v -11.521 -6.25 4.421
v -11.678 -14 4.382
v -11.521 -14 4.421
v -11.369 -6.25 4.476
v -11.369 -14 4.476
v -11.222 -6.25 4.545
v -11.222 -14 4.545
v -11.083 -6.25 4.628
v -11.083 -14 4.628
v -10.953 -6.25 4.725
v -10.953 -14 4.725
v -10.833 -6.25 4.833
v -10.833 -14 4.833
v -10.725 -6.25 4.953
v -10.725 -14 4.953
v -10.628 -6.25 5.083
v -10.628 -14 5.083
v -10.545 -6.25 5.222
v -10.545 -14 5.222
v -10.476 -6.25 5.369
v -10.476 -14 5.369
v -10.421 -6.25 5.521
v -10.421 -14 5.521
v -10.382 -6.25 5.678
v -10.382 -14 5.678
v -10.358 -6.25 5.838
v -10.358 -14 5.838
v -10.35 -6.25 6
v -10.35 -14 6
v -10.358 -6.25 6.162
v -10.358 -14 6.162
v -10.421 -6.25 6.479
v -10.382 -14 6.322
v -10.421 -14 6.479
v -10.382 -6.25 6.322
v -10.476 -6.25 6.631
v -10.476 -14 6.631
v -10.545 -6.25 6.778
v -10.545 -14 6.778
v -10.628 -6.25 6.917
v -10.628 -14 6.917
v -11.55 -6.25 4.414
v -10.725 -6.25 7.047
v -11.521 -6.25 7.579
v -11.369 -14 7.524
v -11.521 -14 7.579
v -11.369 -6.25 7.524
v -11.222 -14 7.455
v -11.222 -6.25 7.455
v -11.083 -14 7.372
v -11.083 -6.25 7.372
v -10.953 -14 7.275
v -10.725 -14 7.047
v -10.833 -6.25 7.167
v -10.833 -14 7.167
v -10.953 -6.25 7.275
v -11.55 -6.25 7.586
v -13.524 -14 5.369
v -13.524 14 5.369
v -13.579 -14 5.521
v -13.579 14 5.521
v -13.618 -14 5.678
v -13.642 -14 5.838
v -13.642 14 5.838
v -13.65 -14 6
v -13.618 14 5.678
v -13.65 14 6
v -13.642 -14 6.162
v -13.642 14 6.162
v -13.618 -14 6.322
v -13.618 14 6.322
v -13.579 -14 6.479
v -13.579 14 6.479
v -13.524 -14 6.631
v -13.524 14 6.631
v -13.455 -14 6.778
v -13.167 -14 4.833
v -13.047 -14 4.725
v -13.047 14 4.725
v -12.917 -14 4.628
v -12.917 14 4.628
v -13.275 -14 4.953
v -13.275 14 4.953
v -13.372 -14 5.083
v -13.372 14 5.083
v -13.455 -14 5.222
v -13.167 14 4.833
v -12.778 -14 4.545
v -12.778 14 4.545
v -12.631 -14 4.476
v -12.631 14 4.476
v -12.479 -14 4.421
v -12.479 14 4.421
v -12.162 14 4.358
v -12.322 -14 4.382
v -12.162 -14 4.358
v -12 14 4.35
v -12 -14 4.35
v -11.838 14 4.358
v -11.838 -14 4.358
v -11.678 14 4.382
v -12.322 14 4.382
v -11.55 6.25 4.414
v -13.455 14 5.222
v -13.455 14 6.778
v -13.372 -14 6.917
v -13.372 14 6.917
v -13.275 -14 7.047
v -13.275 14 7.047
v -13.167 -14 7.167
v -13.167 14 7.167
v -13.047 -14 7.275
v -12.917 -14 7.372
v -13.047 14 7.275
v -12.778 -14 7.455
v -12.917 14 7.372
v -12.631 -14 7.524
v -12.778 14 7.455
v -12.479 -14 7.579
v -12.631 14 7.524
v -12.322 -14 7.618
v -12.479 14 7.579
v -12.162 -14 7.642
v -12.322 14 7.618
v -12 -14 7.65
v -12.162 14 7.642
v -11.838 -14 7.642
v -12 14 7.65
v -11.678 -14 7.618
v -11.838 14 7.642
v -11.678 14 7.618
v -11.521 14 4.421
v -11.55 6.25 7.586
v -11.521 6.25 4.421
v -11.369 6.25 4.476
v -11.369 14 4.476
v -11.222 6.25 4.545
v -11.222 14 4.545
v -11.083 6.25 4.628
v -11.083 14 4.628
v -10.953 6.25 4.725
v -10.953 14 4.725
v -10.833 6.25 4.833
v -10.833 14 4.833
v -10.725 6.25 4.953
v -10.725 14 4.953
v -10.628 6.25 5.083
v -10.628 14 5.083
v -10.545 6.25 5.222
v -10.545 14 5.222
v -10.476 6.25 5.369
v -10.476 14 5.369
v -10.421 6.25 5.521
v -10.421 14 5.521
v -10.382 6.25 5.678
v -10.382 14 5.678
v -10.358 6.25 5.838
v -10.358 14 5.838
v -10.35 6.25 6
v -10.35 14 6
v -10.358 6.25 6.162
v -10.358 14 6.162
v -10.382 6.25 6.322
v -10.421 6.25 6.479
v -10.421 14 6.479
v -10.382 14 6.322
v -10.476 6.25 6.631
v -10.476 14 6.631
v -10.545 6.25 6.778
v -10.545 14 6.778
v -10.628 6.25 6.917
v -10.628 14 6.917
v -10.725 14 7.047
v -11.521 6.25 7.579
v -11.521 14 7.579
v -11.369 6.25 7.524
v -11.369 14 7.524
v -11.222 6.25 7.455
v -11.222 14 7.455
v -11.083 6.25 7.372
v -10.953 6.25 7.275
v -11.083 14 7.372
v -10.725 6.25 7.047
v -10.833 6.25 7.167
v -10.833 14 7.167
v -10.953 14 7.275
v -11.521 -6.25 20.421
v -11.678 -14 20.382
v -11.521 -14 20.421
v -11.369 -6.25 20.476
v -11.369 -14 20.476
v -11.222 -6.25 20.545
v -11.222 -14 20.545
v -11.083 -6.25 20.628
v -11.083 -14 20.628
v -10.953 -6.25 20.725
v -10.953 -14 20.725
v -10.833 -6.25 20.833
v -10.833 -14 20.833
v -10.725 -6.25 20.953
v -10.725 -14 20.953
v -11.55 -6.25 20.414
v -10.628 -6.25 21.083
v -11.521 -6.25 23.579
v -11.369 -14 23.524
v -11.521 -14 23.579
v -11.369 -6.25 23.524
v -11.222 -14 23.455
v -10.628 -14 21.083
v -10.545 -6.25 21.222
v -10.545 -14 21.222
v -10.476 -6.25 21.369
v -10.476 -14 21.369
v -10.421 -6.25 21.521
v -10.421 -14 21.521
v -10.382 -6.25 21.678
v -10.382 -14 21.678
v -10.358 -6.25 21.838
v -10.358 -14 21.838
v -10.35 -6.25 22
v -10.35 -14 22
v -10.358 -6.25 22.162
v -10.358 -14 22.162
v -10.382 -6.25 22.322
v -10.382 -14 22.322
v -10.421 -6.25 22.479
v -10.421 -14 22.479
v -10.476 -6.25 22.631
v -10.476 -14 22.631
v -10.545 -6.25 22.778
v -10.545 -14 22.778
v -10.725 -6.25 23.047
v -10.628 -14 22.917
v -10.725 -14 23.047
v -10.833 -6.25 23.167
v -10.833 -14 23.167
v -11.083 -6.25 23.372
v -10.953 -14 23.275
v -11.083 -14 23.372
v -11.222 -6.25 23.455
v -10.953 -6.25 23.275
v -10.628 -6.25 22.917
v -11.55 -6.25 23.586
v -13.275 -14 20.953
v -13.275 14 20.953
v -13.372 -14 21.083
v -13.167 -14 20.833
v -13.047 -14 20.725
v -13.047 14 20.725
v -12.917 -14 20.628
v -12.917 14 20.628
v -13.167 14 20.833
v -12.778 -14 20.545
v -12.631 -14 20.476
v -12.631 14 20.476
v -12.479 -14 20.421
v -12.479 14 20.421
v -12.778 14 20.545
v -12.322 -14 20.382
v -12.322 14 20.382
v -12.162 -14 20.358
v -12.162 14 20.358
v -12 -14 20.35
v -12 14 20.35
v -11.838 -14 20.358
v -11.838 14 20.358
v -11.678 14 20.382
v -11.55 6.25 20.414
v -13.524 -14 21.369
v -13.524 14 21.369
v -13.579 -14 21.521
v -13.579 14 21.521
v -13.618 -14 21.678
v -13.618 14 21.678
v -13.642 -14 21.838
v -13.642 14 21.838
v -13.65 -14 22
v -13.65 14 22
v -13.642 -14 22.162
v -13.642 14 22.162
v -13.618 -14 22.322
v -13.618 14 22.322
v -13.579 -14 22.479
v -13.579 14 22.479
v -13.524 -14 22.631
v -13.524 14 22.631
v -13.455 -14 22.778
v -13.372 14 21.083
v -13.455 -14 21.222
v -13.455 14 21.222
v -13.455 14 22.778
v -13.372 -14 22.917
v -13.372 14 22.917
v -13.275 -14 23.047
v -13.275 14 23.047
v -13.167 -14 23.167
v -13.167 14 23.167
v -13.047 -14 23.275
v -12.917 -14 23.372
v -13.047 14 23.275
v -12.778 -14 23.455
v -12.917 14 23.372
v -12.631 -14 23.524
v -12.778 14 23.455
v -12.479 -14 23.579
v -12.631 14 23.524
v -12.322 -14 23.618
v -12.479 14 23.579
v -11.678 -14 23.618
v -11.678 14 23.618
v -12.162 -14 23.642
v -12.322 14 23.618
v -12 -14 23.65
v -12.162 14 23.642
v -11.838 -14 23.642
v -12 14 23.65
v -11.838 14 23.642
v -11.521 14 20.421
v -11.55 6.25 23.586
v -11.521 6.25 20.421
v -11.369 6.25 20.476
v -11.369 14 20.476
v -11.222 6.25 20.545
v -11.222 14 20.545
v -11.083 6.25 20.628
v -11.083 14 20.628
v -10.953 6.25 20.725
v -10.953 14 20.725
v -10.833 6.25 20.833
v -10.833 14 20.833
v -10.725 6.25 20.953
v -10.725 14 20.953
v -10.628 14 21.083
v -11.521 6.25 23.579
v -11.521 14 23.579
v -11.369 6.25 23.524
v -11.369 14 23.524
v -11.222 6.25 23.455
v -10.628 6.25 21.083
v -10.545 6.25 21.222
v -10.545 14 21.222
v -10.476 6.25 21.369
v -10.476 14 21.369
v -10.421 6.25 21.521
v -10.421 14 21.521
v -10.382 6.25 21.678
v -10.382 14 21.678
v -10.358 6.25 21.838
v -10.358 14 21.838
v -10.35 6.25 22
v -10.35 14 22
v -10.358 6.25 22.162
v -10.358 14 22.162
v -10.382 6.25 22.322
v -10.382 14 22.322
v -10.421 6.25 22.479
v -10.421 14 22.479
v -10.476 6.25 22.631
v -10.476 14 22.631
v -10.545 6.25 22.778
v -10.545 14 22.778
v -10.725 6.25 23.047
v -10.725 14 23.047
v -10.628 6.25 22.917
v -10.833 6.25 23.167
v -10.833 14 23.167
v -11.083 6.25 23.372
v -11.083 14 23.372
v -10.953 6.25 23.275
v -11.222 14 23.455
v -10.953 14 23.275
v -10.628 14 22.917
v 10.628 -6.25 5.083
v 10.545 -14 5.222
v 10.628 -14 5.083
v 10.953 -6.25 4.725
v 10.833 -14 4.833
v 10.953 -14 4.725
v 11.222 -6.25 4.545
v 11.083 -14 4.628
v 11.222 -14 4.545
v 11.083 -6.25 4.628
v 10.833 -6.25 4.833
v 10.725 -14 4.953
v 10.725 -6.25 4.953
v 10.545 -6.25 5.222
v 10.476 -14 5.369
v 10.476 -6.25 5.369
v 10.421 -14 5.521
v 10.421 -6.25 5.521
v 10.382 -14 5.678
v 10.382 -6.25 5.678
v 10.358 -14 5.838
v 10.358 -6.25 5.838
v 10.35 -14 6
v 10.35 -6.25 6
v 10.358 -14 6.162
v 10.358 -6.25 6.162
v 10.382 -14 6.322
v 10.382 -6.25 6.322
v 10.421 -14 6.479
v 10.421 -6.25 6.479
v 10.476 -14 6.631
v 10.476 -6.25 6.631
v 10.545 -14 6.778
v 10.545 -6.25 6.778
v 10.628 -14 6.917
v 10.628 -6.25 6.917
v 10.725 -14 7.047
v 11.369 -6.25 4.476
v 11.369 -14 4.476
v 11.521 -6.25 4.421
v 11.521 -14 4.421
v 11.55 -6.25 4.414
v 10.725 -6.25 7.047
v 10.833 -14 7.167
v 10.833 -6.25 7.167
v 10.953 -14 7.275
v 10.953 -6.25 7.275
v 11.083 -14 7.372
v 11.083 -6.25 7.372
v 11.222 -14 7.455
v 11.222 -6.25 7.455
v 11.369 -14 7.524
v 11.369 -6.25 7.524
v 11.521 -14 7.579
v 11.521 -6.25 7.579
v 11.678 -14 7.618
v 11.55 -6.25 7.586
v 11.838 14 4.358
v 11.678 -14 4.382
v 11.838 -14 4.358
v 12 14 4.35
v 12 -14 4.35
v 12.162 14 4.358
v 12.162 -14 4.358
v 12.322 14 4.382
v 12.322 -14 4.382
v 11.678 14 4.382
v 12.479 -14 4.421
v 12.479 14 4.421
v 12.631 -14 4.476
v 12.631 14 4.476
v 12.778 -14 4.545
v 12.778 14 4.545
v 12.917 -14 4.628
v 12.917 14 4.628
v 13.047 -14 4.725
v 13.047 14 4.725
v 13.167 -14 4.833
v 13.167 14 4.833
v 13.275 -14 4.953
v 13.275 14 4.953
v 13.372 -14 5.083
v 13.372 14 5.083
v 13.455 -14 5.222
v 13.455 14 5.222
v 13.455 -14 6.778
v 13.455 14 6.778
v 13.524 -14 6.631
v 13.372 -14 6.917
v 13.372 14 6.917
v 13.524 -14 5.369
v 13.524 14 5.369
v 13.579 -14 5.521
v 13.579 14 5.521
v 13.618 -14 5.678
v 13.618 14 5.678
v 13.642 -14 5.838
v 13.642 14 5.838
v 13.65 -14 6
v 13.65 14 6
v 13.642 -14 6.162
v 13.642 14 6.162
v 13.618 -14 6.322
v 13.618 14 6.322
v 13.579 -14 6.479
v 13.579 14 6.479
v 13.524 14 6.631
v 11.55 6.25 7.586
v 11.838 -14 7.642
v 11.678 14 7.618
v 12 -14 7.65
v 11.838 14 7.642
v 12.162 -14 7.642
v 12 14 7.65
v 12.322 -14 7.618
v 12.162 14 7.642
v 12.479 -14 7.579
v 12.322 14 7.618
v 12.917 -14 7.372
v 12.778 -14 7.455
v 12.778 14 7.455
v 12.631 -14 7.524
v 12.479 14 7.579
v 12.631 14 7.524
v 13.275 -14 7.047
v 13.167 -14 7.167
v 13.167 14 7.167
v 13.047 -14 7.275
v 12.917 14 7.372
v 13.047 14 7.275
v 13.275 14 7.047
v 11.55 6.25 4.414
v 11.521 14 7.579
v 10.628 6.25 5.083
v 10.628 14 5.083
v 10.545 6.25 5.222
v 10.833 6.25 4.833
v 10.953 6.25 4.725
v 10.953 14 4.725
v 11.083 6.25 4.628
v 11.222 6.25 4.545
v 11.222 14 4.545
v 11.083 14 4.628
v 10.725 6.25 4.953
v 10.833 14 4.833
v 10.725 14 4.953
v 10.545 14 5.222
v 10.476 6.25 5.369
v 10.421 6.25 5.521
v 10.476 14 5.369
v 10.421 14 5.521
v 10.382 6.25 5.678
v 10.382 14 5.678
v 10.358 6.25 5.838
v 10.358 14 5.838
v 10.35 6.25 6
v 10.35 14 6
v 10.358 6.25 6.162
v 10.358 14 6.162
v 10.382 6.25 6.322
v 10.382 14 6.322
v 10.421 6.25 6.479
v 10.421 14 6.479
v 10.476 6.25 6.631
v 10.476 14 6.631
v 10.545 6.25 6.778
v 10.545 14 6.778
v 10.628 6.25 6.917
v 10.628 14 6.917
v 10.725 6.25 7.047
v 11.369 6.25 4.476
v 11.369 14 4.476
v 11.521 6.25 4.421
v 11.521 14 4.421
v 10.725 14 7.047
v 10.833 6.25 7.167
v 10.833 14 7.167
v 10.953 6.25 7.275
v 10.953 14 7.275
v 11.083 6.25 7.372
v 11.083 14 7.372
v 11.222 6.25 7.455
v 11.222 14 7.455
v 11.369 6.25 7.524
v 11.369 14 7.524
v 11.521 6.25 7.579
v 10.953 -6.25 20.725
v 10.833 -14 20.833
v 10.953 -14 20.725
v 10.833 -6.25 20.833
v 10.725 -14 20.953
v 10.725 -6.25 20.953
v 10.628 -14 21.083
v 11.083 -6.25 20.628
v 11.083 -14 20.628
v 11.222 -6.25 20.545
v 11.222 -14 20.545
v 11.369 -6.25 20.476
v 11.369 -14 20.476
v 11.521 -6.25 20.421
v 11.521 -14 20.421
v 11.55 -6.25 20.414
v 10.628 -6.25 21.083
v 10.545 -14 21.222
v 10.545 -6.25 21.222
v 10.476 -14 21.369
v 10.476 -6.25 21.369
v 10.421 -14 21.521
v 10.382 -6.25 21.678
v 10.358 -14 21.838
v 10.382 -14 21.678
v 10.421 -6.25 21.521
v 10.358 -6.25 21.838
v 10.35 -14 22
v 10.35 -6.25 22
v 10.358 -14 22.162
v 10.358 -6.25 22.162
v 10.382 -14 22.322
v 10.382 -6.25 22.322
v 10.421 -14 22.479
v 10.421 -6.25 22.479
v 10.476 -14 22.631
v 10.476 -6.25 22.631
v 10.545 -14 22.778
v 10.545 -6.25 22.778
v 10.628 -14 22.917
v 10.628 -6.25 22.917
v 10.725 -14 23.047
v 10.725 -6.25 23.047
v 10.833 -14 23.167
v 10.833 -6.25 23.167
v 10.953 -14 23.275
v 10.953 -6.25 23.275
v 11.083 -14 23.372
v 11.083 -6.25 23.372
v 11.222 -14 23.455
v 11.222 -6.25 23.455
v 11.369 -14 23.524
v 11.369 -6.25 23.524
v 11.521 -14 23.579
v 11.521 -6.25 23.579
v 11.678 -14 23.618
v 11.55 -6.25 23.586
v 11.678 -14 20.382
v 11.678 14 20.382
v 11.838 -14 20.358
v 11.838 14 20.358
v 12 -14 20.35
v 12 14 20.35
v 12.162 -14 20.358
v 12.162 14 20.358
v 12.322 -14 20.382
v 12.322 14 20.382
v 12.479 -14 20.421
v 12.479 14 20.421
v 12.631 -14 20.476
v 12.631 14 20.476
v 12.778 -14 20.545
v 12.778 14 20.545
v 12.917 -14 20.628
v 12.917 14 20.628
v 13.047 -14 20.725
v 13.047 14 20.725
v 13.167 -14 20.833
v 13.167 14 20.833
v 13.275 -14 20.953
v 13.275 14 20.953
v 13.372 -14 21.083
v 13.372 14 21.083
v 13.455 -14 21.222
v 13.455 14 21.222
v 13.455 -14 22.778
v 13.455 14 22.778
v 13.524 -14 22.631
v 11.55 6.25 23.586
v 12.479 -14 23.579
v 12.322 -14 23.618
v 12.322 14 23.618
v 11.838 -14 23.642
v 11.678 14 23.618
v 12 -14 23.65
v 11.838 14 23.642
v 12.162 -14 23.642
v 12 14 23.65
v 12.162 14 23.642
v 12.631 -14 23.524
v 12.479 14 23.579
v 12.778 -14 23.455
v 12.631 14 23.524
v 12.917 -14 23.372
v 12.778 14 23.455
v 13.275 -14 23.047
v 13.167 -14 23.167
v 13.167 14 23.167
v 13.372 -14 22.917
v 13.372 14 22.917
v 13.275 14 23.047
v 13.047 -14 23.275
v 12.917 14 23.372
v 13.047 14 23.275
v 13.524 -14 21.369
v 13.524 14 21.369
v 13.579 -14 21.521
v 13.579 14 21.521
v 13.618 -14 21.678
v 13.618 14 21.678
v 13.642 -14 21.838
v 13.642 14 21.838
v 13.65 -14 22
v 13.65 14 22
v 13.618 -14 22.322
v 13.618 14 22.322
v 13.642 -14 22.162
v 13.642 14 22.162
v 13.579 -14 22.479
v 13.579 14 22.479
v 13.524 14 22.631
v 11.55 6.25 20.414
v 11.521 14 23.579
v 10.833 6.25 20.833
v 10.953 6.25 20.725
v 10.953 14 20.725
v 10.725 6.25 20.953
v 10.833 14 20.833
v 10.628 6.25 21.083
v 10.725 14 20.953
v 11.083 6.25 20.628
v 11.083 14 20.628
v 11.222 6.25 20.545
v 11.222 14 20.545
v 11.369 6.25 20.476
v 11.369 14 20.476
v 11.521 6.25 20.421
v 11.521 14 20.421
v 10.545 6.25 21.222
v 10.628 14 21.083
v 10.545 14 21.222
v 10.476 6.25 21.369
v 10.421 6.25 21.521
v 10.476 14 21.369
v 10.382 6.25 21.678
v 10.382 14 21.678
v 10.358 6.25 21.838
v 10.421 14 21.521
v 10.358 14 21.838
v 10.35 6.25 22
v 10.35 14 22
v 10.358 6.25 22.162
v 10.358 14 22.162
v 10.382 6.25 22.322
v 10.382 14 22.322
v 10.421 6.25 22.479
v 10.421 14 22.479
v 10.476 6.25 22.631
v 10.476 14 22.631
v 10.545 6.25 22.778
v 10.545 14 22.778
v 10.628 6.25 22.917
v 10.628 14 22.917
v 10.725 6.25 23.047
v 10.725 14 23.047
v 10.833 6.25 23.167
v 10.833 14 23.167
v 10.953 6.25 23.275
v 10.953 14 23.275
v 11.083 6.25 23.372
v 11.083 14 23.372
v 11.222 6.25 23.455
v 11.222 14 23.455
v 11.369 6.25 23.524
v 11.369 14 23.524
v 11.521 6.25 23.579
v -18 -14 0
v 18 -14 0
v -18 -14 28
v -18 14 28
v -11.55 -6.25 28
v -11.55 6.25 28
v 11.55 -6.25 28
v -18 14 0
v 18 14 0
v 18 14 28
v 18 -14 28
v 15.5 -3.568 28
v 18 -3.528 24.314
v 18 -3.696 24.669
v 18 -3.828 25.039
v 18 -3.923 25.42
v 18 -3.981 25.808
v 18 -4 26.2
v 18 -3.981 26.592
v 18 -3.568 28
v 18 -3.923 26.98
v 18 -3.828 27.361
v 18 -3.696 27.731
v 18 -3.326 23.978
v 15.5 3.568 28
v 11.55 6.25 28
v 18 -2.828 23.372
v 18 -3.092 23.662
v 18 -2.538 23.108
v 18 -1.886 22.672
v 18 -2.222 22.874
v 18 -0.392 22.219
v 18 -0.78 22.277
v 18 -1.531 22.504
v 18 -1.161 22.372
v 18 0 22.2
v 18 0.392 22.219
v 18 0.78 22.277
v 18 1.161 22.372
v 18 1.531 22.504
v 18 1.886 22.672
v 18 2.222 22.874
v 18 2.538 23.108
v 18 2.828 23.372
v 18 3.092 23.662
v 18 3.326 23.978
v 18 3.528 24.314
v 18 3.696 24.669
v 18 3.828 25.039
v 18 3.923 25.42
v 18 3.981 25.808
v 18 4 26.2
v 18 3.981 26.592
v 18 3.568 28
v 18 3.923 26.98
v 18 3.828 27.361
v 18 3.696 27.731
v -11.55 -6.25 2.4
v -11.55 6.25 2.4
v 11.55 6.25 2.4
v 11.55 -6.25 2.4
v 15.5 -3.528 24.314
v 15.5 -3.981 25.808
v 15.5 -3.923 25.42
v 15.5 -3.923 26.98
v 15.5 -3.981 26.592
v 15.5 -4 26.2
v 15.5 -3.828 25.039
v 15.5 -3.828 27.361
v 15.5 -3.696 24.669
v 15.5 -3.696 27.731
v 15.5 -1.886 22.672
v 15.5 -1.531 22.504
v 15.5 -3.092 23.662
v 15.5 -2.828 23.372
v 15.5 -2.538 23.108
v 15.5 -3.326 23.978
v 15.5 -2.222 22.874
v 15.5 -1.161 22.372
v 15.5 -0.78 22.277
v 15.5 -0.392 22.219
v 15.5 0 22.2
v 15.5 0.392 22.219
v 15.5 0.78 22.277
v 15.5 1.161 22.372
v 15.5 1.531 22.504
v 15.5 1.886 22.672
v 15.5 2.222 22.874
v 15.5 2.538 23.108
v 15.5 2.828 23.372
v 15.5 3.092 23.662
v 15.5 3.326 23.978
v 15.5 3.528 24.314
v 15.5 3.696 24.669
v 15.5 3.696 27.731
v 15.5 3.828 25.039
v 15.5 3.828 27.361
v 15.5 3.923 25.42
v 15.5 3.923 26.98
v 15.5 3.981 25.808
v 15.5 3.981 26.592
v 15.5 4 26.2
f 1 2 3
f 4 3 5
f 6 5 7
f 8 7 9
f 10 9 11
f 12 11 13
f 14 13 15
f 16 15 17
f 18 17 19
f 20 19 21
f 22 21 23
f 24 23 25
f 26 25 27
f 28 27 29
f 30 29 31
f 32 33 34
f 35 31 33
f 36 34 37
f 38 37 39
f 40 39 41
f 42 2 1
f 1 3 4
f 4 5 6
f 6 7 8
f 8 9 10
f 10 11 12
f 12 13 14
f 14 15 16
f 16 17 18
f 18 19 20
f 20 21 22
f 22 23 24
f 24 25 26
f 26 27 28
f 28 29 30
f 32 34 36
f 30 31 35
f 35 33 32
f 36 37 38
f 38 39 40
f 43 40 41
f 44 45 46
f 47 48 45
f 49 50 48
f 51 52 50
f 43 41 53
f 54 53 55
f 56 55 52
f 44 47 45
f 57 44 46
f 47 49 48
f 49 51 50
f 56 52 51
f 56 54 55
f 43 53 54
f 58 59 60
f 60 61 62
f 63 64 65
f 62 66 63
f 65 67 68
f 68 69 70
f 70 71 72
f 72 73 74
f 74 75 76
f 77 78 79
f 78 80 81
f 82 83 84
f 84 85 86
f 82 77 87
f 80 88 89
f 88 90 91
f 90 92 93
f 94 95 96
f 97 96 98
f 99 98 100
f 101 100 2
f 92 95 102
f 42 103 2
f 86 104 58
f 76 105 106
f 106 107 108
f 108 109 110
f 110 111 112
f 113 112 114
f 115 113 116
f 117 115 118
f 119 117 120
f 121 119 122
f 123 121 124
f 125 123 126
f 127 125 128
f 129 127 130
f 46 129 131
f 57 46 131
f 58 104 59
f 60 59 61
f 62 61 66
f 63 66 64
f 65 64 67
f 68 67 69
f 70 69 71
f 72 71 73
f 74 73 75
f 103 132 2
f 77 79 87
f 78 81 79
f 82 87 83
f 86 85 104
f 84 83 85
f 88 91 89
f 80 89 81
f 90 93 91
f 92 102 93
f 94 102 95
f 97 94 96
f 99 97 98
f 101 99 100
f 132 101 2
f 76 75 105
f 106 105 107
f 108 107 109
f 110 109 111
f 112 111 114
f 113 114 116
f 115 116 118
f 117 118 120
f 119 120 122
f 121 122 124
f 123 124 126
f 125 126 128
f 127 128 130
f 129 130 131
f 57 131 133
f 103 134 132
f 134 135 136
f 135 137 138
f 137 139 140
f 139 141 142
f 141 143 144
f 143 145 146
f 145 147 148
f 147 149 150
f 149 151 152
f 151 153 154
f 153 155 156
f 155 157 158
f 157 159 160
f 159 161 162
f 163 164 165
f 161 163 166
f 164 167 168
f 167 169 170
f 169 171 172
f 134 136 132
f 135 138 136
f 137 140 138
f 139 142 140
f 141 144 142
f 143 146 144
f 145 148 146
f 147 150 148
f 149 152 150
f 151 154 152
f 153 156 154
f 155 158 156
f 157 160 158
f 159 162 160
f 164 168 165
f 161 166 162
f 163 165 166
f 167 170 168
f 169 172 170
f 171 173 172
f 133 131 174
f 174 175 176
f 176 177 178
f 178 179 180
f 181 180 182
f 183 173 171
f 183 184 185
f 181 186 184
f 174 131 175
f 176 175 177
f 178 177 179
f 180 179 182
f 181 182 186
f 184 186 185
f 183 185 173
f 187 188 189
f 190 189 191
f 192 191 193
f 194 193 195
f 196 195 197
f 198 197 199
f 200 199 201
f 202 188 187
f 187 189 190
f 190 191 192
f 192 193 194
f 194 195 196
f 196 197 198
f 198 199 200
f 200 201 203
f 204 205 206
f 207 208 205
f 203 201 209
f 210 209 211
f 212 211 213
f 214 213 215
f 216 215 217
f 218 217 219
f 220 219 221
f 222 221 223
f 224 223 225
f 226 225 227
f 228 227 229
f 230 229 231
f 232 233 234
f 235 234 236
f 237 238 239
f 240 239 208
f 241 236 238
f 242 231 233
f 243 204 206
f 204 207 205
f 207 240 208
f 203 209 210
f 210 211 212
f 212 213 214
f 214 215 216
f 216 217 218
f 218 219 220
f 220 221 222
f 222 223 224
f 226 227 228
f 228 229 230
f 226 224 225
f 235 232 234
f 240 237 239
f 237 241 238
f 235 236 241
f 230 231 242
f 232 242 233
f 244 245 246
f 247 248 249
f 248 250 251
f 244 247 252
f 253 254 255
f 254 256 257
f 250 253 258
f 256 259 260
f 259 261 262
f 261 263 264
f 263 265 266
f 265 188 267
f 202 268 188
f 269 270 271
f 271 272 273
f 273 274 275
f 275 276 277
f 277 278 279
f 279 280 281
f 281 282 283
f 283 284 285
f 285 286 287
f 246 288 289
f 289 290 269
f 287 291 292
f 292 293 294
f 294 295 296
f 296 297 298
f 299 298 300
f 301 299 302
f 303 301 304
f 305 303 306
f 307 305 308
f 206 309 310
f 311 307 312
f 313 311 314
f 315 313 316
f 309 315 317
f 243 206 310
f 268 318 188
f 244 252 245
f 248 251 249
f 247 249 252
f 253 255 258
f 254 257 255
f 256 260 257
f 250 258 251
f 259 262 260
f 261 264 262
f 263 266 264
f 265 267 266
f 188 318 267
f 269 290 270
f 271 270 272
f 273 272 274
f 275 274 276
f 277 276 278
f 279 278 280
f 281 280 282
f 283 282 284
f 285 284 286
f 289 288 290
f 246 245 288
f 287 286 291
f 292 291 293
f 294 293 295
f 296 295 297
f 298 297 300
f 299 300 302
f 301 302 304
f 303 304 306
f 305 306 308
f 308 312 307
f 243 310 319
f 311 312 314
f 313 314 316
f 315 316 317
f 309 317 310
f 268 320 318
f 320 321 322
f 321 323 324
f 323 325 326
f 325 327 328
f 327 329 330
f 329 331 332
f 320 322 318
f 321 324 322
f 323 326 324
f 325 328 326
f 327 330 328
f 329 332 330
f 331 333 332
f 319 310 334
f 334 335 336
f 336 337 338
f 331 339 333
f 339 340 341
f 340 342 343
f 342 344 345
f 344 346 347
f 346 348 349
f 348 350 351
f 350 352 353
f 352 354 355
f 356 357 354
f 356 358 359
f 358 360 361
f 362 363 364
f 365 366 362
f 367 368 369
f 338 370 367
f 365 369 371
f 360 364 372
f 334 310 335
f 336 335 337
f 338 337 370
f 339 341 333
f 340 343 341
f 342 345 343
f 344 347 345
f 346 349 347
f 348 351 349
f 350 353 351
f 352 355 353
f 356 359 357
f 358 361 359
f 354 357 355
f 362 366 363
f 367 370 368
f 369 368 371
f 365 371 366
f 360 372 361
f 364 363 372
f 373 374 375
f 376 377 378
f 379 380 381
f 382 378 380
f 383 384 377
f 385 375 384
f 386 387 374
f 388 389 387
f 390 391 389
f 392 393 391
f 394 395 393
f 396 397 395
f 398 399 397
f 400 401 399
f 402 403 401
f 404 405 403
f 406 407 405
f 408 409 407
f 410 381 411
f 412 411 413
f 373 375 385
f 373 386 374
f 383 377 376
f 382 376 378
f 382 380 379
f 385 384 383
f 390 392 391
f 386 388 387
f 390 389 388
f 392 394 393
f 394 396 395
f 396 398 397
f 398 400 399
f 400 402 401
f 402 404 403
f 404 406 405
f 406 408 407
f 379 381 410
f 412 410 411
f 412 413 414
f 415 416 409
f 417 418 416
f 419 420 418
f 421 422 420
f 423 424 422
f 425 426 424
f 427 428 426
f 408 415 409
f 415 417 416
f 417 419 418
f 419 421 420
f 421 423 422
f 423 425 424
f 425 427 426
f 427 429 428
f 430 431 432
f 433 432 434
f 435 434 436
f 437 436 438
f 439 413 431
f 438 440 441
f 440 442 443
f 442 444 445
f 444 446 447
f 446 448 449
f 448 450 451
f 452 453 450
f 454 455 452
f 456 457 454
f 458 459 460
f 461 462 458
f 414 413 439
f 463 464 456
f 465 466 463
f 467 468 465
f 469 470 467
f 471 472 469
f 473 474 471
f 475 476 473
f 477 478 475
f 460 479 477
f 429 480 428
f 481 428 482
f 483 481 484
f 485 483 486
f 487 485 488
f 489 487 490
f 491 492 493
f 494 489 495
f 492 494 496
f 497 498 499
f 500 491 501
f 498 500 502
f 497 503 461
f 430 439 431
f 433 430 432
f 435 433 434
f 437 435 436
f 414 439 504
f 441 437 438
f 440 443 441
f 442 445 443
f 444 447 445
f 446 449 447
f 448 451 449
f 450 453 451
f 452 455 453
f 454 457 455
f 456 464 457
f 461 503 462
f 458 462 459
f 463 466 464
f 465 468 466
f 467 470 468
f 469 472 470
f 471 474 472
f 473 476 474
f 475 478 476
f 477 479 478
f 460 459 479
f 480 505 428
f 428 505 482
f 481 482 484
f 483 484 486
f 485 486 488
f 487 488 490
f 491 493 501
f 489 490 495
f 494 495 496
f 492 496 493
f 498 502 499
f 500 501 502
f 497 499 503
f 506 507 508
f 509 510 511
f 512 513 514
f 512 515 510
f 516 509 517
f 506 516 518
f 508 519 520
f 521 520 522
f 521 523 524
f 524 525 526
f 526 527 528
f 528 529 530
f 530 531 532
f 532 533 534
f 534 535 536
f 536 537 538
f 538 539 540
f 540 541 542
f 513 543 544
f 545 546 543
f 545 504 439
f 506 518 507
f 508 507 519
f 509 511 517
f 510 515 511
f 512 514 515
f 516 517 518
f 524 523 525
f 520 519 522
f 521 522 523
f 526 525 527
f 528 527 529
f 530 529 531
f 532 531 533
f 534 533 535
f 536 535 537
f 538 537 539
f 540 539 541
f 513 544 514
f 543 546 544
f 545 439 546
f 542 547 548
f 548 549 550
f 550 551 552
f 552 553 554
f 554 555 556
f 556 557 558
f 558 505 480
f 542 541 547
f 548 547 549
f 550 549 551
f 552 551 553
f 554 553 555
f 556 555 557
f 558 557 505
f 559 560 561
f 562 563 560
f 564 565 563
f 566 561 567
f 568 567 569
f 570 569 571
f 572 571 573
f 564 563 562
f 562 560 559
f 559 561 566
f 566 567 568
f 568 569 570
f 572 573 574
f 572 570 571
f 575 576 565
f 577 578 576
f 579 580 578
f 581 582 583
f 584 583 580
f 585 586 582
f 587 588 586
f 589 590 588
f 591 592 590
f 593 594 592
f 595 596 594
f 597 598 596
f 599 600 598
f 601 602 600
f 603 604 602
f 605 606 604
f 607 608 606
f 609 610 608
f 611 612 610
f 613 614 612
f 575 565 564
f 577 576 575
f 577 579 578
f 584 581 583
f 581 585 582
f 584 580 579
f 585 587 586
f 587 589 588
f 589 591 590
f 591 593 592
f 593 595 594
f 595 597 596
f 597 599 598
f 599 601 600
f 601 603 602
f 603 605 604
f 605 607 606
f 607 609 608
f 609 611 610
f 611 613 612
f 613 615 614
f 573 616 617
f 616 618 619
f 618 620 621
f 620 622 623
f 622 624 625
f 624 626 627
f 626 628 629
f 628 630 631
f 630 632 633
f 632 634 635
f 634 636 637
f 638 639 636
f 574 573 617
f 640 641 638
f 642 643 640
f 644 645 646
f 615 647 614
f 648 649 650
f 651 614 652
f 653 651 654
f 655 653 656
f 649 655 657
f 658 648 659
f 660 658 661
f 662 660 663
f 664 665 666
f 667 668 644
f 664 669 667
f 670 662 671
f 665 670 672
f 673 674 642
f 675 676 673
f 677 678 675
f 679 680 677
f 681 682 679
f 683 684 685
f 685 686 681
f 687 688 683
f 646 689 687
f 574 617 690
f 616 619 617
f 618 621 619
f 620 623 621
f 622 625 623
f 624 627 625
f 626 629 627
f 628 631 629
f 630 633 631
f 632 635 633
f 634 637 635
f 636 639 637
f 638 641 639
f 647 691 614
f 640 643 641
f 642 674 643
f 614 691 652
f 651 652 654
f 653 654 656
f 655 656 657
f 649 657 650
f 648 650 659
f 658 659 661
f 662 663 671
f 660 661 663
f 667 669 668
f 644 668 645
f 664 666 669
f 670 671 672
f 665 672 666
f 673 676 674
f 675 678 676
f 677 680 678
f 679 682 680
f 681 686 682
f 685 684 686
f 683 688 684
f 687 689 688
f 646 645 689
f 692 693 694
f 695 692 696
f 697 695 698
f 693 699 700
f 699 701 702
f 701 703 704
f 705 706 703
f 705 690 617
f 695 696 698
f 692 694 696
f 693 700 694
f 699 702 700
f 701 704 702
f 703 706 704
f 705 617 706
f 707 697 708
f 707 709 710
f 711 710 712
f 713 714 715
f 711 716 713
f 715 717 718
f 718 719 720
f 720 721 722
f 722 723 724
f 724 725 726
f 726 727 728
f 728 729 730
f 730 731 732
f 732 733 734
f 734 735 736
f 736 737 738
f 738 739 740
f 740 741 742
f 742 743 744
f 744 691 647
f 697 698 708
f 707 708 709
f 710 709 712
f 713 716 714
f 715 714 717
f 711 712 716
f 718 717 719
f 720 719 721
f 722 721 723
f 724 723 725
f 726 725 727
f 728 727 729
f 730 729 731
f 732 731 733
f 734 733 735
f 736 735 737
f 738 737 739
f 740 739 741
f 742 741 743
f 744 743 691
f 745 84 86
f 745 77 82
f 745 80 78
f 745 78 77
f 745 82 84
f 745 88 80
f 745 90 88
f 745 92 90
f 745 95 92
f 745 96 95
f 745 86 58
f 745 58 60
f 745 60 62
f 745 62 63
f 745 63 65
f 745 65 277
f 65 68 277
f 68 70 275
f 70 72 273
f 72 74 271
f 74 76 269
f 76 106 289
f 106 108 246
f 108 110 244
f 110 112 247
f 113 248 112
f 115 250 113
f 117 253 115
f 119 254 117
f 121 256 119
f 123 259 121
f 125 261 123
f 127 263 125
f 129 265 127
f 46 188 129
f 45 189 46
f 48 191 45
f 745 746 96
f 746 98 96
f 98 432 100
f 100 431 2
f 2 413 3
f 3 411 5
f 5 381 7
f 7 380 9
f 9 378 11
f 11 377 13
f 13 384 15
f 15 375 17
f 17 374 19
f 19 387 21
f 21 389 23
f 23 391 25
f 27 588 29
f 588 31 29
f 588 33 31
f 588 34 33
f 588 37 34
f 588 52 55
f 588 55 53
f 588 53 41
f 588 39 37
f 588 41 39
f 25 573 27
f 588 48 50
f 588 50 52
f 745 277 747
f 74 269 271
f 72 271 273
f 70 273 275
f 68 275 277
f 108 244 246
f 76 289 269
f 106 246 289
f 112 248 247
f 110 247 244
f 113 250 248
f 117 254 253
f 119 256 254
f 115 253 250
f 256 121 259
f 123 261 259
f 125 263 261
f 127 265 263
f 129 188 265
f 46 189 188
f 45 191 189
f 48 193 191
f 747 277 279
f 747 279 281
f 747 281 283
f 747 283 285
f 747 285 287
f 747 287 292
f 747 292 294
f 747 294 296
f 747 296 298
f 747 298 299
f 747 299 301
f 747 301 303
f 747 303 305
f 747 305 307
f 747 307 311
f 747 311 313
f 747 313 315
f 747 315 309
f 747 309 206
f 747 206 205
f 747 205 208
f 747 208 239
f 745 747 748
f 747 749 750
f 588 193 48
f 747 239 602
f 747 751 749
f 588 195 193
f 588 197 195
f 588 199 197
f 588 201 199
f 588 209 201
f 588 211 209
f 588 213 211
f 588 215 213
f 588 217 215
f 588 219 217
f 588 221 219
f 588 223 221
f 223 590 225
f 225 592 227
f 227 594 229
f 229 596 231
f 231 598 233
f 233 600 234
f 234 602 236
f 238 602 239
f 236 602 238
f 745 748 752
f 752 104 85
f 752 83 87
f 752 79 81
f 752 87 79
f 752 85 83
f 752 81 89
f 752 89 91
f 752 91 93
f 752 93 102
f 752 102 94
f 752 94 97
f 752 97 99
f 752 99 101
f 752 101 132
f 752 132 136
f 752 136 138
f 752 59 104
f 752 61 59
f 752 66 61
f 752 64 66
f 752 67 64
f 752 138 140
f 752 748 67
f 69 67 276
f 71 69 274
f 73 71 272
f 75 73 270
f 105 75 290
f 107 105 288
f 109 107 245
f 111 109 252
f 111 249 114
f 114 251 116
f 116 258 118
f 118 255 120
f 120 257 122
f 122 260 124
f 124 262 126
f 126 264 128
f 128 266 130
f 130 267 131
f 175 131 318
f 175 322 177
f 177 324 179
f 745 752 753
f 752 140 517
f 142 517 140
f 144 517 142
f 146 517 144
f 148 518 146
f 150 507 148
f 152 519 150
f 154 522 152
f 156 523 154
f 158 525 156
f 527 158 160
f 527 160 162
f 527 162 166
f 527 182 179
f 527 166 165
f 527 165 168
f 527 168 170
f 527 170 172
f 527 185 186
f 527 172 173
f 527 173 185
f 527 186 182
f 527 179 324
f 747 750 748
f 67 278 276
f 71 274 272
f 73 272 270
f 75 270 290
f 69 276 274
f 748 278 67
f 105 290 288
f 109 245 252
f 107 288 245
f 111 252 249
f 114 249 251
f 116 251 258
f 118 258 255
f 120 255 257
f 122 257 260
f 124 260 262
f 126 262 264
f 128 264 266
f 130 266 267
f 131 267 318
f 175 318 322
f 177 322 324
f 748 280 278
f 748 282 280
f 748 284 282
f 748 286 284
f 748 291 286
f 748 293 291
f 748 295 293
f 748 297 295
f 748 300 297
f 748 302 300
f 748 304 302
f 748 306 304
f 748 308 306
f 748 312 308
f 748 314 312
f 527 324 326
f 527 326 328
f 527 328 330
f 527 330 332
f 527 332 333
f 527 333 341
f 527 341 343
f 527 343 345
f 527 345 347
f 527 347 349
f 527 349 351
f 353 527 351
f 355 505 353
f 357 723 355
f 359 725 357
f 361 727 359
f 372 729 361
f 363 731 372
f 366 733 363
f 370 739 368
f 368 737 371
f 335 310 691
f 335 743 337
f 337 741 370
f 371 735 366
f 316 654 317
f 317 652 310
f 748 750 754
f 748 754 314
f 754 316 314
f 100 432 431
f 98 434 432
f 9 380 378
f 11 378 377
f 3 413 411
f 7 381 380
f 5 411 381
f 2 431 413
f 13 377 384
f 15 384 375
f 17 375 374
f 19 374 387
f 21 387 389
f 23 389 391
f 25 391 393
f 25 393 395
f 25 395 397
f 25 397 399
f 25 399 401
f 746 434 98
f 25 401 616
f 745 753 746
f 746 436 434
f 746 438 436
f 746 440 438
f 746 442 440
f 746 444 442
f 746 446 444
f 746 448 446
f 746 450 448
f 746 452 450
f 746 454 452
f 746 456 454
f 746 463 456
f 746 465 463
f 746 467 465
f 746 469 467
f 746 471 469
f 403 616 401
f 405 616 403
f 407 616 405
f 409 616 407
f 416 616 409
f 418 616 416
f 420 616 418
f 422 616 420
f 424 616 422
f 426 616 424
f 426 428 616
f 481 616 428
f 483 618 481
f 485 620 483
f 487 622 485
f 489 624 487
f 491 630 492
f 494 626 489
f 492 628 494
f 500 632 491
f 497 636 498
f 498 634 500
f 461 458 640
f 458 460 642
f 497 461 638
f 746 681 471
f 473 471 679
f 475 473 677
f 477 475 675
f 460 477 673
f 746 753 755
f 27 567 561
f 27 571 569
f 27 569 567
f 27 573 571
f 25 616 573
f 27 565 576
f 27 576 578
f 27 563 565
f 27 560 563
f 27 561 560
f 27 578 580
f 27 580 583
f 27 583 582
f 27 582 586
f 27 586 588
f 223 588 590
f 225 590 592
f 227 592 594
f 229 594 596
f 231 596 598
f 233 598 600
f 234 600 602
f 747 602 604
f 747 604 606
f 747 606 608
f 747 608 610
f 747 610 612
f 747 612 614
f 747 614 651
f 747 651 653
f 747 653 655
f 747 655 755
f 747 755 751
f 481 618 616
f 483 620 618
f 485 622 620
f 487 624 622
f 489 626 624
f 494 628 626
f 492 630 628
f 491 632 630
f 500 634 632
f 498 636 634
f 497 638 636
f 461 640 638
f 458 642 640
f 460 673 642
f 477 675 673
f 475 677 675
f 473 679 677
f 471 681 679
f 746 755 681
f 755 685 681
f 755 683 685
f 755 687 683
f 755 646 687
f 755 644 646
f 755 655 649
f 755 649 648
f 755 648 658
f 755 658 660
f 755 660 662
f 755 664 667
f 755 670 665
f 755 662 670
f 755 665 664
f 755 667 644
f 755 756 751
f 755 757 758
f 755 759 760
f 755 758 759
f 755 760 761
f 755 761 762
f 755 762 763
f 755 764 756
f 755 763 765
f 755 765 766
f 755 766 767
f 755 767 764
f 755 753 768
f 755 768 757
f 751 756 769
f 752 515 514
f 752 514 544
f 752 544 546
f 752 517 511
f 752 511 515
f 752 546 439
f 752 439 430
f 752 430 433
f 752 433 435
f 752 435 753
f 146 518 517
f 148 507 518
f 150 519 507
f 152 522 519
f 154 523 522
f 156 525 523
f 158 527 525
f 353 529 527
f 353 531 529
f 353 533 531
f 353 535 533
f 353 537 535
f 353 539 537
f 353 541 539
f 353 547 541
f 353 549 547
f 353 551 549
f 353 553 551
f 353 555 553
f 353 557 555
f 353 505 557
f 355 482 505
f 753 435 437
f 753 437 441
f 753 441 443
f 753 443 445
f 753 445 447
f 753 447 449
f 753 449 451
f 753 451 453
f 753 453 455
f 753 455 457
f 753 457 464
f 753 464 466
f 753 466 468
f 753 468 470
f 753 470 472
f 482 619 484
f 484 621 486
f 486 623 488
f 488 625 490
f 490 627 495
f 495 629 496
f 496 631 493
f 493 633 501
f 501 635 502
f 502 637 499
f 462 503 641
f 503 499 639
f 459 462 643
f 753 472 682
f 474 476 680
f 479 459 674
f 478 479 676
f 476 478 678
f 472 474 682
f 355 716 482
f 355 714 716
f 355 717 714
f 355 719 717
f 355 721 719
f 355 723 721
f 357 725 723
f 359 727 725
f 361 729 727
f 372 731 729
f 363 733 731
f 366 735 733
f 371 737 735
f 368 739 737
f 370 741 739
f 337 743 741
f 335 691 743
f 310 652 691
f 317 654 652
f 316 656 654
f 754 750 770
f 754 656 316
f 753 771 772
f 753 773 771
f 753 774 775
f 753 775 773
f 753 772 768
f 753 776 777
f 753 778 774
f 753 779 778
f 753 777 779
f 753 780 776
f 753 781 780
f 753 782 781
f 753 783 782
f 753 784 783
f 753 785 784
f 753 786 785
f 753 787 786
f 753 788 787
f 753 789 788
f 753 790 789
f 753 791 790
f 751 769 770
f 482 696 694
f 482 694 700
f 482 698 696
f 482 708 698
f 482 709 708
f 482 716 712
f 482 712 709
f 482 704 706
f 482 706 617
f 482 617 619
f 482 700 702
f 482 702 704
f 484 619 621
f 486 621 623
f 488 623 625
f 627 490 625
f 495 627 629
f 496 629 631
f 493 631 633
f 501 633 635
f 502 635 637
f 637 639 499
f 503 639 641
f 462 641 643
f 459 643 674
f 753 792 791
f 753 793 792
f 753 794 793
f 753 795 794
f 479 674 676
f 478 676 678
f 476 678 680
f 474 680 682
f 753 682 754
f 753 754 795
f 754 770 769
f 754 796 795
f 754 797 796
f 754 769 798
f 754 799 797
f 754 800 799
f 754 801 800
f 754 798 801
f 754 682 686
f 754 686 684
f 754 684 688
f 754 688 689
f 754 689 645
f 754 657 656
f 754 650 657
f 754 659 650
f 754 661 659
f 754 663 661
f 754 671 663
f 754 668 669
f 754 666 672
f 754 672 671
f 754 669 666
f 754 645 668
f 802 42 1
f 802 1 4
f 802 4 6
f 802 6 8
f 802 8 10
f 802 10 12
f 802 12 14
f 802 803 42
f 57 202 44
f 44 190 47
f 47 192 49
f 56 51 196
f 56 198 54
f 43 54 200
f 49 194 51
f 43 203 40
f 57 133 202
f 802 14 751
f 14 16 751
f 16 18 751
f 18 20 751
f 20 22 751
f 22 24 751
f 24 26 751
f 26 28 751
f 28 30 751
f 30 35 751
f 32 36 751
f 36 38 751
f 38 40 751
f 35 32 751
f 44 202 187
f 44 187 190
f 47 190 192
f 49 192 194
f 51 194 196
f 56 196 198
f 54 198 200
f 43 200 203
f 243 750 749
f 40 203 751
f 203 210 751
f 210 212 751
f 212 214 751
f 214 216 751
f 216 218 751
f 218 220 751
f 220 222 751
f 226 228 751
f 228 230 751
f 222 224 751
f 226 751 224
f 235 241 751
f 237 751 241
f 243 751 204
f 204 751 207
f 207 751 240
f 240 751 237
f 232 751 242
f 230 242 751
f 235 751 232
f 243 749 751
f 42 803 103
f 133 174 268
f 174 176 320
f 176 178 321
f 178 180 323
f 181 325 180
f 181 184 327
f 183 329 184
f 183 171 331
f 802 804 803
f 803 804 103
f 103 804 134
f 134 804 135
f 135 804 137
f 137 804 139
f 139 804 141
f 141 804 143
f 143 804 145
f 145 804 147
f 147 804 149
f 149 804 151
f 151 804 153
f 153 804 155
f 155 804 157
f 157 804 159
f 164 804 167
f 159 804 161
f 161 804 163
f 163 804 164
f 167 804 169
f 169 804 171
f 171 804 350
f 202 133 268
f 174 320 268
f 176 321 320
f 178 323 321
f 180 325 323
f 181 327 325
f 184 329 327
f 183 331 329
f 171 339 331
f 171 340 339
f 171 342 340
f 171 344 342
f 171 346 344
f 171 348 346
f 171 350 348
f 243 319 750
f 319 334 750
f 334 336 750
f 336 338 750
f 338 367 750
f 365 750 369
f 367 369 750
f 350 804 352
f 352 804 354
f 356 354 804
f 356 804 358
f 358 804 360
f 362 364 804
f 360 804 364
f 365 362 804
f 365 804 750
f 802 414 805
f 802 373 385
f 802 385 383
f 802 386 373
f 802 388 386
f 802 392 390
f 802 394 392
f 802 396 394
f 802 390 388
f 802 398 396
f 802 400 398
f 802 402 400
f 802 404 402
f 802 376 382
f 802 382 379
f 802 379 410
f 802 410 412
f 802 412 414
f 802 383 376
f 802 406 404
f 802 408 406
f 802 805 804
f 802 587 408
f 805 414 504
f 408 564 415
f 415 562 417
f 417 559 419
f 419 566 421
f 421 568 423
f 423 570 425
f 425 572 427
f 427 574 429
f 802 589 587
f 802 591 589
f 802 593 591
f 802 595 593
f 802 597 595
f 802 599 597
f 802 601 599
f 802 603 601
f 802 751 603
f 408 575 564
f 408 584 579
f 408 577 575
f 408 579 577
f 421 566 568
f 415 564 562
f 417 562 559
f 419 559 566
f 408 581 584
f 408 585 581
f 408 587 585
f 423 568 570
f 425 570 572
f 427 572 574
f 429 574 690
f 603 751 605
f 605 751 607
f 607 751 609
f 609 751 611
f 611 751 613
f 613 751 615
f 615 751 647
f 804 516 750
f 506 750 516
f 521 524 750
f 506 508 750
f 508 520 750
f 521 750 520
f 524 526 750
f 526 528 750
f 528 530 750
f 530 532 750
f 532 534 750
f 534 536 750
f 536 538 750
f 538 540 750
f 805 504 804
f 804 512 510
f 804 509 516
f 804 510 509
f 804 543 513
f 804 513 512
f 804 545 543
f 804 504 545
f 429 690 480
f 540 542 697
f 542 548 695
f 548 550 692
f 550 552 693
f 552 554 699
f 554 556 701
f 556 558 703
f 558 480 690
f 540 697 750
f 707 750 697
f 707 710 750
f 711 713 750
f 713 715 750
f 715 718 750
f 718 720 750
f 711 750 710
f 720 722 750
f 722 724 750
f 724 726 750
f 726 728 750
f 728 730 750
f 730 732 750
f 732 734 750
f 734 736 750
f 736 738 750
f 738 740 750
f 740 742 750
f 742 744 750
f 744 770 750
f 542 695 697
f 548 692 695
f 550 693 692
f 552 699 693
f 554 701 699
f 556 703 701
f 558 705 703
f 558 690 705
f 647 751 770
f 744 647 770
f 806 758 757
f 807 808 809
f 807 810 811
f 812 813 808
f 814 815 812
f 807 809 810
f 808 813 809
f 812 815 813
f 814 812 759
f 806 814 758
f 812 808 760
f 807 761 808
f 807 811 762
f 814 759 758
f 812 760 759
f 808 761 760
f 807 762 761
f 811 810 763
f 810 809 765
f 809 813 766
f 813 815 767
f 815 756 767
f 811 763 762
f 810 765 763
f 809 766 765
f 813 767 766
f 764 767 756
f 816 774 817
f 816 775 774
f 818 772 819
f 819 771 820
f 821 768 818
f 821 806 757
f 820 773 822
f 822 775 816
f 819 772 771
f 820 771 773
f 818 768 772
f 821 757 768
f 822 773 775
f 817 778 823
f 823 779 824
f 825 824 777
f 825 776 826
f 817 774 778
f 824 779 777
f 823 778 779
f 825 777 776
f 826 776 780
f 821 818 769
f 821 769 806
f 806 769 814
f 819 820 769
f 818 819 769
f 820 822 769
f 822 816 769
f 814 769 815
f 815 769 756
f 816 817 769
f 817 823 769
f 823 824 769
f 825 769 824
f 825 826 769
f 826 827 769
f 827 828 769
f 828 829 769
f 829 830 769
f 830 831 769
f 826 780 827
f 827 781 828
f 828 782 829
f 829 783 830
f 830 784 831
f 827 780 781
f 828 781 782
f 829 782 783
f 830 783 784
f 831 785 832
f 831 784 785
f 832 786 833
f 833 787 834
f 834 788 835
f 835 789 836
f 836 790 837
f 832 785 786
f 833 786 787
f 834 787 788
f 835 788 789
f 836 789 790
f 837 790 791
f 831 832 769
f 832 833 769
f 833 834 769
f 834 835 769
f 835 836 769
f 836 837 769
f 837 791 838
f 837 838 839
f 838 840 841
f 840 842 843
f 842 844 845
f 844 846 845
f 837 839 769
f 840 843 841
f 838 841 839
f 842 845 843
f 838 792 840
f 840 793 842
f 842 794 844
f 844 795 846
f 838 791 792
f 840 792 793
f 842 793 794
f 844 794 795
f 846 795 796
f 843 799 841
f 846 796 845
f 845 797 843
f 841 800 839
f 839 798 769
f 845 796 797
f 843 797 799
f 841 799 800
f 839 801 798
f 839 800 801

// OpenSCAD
// file: util.scad
// Shared helper modules for node-dock parts.
include <params.scad>

// Boss for a heat-set insert. h = total boss height, with insert pocket
// drilled from the top.
module insert_boss(h = 8) {
    difference() {
        cylinder(h = h, d = M3_INSERT_D + 2 * WALL);
        translate([0, 0, h - M3_INSERT_H])
            cylinder(h = M3_INSERT_H + 0.1, d = M3_INSERT_D);
    }
}

// Through-hole for M3 clearance.
module m3_through(h) {
    cylinder(h = h + 0.2, d = M3_CLEAR, center = false);
}

// Alignment peg (printed solid).
module peg(h = 8) {
    cylinder(h = h, d = PEG_D);
}

// Alignment-peg socket.
module peg_hole(h = 8) {
    cylinder(h = h + 0.1, d = PEG_D + 0.2);
}

// Rounded rectangle (2D) for shells.
module rrect(x, y, r = 3) {
    hull() for (sx = [-1, 1], sy = [-1, 1])
        translate([sx * (x/2 - r), sy * (y/2 - r), 0]) circle(r = r);
}

// Servo cavity (rectangular box, centered XY, base at z=0).
module servo_cavity(x, y, z) {
    translate([-x/2, -y/2, 0]) cube([x, y, z + 0.1]);
}
// file: params.scad
// Shared parameters for node-dock shell.
// All dimensions in millimeters. Sourced from
//   ../../bodylink/sim/bodies/dock_humanoid.xml
// where they are in meters.

// ── Global tolerances ────────────────────────────────────────────────
WALL        = 2.4;   // 3 perimeters at 0.4 mm nozzle / 0.2 mm layer
FIT         = 0.3;   // press-fit clearance on servo cavities
PHONE_FIT   = 0.5;   // clearance around phone outline
M3_CLEAR    = 3.3;   // M3 clearance hole
M3_INSERT_D = 5.0;   // heat-set insert outer Ø
M3_INSERT_H = 5.0;   // heat-set insert depth
PEG_D       = 4.0;   // alignment peg Ø (peg) / hole Ø is PEG_D + 0.2

$fn = 64;            // smooth curves by default

// ── Base ─────────────────────────────────────────────────────────────
BASE_D      = 240;
BASE_H      = 50;
BASE_SPLIT  = 25;    // halve the disc horizontally
BASE_FLANGE_D = 90;
BASE_FLANGE_H = 10;

// ── Leg shaft ────────────────────────────────────────────────────────
LEG_D       = 60;
LEG_H       = 70;
LEG_BORE    = 16;    // cable channel Ø

// ── Trunk ────────────────────────────────────────────────────────────
TRUNK_X     = 100;
TRUNK_Y     = 80;
TRUNK_Z     = 140;

// ── Neck stub (enlarged from XML 30³ to fit MG996R + MG90S stacked) ──
NECK_X      = 30;
NECK_Y      = 40;
NECK_Z      = 40;

// ── Head / phone cradle ──────────────────────────────────────────────
// XML head_plate visible face: 200 × 100 mm (landscape), 20 mm thick
// XML head_frame_back: 216 × 26 × 114 mm
HEAD_X      = 216;
HEAD_Y      = 26;
HEAD_Z      = 114;
PHONE_X     = 165;   // typical 6.1" phone outline; iPhone 15-class
PHONE_Y     = 9;     // phone thickness
PHONE_Z     = 76;
BEZEL_LIP   = 6;     // visible-face overlap on the front bezel

// ── Shoulder bracket ─────────────────────────────────────────────────
SHB_X       = 36;
SHB_Y       = 28;
SHB_Z       = 28;

// ── Arm ──────────────────────────────────────────────────────────────
ARM_D       = 26;
ARM_L       = 60;

// ── Servo cavities (datasheet + FIT clearance) ───────────────────────
// DS3218 standard servo body: 40 × 20 × 38.5 + cable boss
DS3218_X = 40.0 + FIT;
DS3218_Y = 20.0 + FIT;
DS3218_Z = 38.5 + FIT;
DS3218_EAR_W = 54.5;   // mounting-ear span
DS3218_EAR_T = 2.5;

// MG996R: 40.7 × 19.7 × 42.9
MG996R_X = 40.7 + FIT;
MG996R_Y = 19.7 + FIT;
MG996R_Z = 42.9 + FIT;

// MG90S / SG90: 22.8 × 12.2 × 28.5 (MG90S body height includes flange)
MG90S_X = 22.8 + FIT;
MG90S_Y = 12.2 + FIT;
MG90S_Z = 28.5 + FIT;
// main file
// Shoulder bracket — houses SG90, bolts into trunk side wall.
// Print 2 (mirrored is identical because the SG90 cavity is symmetric).
include <params.scad>
use <util.scad>

module shoulder_bracket() {
    difference() {
        translate([-SHB_X/2, -SHB_Y/2, 0])
            cube([SHB_X, SHB_Y, SHB_Z]);

        // SG90 cavity (oriented with shaft pointing +X out the side).
        translate([0, 0, WALL])
            servo_cavity(MG90S_X, MG90S_Y, MG90S_Z);

        // Output-shaft access on the +X face.
        translate([SHB_X/2 - WALL - 0.1, 0, WALL + MG90S_Z - 5])
            rotate([0, 90, 0]) cylinder(h = WALL + 0.4, d = 8);

        // 4 M3 clearance holes for bolting to trunk side wall.
        for (dx = [-12, 12], dz = [6, SHB_Z - 6])
            translate([dx, -SHB_Y/2 - 0.1, dz])
                rotate([-90, 0, 0])
                    cylinder(h = SHB_Y + 0.2, d = M3_CLEAR);
    }
}

shoulder_bracket();
